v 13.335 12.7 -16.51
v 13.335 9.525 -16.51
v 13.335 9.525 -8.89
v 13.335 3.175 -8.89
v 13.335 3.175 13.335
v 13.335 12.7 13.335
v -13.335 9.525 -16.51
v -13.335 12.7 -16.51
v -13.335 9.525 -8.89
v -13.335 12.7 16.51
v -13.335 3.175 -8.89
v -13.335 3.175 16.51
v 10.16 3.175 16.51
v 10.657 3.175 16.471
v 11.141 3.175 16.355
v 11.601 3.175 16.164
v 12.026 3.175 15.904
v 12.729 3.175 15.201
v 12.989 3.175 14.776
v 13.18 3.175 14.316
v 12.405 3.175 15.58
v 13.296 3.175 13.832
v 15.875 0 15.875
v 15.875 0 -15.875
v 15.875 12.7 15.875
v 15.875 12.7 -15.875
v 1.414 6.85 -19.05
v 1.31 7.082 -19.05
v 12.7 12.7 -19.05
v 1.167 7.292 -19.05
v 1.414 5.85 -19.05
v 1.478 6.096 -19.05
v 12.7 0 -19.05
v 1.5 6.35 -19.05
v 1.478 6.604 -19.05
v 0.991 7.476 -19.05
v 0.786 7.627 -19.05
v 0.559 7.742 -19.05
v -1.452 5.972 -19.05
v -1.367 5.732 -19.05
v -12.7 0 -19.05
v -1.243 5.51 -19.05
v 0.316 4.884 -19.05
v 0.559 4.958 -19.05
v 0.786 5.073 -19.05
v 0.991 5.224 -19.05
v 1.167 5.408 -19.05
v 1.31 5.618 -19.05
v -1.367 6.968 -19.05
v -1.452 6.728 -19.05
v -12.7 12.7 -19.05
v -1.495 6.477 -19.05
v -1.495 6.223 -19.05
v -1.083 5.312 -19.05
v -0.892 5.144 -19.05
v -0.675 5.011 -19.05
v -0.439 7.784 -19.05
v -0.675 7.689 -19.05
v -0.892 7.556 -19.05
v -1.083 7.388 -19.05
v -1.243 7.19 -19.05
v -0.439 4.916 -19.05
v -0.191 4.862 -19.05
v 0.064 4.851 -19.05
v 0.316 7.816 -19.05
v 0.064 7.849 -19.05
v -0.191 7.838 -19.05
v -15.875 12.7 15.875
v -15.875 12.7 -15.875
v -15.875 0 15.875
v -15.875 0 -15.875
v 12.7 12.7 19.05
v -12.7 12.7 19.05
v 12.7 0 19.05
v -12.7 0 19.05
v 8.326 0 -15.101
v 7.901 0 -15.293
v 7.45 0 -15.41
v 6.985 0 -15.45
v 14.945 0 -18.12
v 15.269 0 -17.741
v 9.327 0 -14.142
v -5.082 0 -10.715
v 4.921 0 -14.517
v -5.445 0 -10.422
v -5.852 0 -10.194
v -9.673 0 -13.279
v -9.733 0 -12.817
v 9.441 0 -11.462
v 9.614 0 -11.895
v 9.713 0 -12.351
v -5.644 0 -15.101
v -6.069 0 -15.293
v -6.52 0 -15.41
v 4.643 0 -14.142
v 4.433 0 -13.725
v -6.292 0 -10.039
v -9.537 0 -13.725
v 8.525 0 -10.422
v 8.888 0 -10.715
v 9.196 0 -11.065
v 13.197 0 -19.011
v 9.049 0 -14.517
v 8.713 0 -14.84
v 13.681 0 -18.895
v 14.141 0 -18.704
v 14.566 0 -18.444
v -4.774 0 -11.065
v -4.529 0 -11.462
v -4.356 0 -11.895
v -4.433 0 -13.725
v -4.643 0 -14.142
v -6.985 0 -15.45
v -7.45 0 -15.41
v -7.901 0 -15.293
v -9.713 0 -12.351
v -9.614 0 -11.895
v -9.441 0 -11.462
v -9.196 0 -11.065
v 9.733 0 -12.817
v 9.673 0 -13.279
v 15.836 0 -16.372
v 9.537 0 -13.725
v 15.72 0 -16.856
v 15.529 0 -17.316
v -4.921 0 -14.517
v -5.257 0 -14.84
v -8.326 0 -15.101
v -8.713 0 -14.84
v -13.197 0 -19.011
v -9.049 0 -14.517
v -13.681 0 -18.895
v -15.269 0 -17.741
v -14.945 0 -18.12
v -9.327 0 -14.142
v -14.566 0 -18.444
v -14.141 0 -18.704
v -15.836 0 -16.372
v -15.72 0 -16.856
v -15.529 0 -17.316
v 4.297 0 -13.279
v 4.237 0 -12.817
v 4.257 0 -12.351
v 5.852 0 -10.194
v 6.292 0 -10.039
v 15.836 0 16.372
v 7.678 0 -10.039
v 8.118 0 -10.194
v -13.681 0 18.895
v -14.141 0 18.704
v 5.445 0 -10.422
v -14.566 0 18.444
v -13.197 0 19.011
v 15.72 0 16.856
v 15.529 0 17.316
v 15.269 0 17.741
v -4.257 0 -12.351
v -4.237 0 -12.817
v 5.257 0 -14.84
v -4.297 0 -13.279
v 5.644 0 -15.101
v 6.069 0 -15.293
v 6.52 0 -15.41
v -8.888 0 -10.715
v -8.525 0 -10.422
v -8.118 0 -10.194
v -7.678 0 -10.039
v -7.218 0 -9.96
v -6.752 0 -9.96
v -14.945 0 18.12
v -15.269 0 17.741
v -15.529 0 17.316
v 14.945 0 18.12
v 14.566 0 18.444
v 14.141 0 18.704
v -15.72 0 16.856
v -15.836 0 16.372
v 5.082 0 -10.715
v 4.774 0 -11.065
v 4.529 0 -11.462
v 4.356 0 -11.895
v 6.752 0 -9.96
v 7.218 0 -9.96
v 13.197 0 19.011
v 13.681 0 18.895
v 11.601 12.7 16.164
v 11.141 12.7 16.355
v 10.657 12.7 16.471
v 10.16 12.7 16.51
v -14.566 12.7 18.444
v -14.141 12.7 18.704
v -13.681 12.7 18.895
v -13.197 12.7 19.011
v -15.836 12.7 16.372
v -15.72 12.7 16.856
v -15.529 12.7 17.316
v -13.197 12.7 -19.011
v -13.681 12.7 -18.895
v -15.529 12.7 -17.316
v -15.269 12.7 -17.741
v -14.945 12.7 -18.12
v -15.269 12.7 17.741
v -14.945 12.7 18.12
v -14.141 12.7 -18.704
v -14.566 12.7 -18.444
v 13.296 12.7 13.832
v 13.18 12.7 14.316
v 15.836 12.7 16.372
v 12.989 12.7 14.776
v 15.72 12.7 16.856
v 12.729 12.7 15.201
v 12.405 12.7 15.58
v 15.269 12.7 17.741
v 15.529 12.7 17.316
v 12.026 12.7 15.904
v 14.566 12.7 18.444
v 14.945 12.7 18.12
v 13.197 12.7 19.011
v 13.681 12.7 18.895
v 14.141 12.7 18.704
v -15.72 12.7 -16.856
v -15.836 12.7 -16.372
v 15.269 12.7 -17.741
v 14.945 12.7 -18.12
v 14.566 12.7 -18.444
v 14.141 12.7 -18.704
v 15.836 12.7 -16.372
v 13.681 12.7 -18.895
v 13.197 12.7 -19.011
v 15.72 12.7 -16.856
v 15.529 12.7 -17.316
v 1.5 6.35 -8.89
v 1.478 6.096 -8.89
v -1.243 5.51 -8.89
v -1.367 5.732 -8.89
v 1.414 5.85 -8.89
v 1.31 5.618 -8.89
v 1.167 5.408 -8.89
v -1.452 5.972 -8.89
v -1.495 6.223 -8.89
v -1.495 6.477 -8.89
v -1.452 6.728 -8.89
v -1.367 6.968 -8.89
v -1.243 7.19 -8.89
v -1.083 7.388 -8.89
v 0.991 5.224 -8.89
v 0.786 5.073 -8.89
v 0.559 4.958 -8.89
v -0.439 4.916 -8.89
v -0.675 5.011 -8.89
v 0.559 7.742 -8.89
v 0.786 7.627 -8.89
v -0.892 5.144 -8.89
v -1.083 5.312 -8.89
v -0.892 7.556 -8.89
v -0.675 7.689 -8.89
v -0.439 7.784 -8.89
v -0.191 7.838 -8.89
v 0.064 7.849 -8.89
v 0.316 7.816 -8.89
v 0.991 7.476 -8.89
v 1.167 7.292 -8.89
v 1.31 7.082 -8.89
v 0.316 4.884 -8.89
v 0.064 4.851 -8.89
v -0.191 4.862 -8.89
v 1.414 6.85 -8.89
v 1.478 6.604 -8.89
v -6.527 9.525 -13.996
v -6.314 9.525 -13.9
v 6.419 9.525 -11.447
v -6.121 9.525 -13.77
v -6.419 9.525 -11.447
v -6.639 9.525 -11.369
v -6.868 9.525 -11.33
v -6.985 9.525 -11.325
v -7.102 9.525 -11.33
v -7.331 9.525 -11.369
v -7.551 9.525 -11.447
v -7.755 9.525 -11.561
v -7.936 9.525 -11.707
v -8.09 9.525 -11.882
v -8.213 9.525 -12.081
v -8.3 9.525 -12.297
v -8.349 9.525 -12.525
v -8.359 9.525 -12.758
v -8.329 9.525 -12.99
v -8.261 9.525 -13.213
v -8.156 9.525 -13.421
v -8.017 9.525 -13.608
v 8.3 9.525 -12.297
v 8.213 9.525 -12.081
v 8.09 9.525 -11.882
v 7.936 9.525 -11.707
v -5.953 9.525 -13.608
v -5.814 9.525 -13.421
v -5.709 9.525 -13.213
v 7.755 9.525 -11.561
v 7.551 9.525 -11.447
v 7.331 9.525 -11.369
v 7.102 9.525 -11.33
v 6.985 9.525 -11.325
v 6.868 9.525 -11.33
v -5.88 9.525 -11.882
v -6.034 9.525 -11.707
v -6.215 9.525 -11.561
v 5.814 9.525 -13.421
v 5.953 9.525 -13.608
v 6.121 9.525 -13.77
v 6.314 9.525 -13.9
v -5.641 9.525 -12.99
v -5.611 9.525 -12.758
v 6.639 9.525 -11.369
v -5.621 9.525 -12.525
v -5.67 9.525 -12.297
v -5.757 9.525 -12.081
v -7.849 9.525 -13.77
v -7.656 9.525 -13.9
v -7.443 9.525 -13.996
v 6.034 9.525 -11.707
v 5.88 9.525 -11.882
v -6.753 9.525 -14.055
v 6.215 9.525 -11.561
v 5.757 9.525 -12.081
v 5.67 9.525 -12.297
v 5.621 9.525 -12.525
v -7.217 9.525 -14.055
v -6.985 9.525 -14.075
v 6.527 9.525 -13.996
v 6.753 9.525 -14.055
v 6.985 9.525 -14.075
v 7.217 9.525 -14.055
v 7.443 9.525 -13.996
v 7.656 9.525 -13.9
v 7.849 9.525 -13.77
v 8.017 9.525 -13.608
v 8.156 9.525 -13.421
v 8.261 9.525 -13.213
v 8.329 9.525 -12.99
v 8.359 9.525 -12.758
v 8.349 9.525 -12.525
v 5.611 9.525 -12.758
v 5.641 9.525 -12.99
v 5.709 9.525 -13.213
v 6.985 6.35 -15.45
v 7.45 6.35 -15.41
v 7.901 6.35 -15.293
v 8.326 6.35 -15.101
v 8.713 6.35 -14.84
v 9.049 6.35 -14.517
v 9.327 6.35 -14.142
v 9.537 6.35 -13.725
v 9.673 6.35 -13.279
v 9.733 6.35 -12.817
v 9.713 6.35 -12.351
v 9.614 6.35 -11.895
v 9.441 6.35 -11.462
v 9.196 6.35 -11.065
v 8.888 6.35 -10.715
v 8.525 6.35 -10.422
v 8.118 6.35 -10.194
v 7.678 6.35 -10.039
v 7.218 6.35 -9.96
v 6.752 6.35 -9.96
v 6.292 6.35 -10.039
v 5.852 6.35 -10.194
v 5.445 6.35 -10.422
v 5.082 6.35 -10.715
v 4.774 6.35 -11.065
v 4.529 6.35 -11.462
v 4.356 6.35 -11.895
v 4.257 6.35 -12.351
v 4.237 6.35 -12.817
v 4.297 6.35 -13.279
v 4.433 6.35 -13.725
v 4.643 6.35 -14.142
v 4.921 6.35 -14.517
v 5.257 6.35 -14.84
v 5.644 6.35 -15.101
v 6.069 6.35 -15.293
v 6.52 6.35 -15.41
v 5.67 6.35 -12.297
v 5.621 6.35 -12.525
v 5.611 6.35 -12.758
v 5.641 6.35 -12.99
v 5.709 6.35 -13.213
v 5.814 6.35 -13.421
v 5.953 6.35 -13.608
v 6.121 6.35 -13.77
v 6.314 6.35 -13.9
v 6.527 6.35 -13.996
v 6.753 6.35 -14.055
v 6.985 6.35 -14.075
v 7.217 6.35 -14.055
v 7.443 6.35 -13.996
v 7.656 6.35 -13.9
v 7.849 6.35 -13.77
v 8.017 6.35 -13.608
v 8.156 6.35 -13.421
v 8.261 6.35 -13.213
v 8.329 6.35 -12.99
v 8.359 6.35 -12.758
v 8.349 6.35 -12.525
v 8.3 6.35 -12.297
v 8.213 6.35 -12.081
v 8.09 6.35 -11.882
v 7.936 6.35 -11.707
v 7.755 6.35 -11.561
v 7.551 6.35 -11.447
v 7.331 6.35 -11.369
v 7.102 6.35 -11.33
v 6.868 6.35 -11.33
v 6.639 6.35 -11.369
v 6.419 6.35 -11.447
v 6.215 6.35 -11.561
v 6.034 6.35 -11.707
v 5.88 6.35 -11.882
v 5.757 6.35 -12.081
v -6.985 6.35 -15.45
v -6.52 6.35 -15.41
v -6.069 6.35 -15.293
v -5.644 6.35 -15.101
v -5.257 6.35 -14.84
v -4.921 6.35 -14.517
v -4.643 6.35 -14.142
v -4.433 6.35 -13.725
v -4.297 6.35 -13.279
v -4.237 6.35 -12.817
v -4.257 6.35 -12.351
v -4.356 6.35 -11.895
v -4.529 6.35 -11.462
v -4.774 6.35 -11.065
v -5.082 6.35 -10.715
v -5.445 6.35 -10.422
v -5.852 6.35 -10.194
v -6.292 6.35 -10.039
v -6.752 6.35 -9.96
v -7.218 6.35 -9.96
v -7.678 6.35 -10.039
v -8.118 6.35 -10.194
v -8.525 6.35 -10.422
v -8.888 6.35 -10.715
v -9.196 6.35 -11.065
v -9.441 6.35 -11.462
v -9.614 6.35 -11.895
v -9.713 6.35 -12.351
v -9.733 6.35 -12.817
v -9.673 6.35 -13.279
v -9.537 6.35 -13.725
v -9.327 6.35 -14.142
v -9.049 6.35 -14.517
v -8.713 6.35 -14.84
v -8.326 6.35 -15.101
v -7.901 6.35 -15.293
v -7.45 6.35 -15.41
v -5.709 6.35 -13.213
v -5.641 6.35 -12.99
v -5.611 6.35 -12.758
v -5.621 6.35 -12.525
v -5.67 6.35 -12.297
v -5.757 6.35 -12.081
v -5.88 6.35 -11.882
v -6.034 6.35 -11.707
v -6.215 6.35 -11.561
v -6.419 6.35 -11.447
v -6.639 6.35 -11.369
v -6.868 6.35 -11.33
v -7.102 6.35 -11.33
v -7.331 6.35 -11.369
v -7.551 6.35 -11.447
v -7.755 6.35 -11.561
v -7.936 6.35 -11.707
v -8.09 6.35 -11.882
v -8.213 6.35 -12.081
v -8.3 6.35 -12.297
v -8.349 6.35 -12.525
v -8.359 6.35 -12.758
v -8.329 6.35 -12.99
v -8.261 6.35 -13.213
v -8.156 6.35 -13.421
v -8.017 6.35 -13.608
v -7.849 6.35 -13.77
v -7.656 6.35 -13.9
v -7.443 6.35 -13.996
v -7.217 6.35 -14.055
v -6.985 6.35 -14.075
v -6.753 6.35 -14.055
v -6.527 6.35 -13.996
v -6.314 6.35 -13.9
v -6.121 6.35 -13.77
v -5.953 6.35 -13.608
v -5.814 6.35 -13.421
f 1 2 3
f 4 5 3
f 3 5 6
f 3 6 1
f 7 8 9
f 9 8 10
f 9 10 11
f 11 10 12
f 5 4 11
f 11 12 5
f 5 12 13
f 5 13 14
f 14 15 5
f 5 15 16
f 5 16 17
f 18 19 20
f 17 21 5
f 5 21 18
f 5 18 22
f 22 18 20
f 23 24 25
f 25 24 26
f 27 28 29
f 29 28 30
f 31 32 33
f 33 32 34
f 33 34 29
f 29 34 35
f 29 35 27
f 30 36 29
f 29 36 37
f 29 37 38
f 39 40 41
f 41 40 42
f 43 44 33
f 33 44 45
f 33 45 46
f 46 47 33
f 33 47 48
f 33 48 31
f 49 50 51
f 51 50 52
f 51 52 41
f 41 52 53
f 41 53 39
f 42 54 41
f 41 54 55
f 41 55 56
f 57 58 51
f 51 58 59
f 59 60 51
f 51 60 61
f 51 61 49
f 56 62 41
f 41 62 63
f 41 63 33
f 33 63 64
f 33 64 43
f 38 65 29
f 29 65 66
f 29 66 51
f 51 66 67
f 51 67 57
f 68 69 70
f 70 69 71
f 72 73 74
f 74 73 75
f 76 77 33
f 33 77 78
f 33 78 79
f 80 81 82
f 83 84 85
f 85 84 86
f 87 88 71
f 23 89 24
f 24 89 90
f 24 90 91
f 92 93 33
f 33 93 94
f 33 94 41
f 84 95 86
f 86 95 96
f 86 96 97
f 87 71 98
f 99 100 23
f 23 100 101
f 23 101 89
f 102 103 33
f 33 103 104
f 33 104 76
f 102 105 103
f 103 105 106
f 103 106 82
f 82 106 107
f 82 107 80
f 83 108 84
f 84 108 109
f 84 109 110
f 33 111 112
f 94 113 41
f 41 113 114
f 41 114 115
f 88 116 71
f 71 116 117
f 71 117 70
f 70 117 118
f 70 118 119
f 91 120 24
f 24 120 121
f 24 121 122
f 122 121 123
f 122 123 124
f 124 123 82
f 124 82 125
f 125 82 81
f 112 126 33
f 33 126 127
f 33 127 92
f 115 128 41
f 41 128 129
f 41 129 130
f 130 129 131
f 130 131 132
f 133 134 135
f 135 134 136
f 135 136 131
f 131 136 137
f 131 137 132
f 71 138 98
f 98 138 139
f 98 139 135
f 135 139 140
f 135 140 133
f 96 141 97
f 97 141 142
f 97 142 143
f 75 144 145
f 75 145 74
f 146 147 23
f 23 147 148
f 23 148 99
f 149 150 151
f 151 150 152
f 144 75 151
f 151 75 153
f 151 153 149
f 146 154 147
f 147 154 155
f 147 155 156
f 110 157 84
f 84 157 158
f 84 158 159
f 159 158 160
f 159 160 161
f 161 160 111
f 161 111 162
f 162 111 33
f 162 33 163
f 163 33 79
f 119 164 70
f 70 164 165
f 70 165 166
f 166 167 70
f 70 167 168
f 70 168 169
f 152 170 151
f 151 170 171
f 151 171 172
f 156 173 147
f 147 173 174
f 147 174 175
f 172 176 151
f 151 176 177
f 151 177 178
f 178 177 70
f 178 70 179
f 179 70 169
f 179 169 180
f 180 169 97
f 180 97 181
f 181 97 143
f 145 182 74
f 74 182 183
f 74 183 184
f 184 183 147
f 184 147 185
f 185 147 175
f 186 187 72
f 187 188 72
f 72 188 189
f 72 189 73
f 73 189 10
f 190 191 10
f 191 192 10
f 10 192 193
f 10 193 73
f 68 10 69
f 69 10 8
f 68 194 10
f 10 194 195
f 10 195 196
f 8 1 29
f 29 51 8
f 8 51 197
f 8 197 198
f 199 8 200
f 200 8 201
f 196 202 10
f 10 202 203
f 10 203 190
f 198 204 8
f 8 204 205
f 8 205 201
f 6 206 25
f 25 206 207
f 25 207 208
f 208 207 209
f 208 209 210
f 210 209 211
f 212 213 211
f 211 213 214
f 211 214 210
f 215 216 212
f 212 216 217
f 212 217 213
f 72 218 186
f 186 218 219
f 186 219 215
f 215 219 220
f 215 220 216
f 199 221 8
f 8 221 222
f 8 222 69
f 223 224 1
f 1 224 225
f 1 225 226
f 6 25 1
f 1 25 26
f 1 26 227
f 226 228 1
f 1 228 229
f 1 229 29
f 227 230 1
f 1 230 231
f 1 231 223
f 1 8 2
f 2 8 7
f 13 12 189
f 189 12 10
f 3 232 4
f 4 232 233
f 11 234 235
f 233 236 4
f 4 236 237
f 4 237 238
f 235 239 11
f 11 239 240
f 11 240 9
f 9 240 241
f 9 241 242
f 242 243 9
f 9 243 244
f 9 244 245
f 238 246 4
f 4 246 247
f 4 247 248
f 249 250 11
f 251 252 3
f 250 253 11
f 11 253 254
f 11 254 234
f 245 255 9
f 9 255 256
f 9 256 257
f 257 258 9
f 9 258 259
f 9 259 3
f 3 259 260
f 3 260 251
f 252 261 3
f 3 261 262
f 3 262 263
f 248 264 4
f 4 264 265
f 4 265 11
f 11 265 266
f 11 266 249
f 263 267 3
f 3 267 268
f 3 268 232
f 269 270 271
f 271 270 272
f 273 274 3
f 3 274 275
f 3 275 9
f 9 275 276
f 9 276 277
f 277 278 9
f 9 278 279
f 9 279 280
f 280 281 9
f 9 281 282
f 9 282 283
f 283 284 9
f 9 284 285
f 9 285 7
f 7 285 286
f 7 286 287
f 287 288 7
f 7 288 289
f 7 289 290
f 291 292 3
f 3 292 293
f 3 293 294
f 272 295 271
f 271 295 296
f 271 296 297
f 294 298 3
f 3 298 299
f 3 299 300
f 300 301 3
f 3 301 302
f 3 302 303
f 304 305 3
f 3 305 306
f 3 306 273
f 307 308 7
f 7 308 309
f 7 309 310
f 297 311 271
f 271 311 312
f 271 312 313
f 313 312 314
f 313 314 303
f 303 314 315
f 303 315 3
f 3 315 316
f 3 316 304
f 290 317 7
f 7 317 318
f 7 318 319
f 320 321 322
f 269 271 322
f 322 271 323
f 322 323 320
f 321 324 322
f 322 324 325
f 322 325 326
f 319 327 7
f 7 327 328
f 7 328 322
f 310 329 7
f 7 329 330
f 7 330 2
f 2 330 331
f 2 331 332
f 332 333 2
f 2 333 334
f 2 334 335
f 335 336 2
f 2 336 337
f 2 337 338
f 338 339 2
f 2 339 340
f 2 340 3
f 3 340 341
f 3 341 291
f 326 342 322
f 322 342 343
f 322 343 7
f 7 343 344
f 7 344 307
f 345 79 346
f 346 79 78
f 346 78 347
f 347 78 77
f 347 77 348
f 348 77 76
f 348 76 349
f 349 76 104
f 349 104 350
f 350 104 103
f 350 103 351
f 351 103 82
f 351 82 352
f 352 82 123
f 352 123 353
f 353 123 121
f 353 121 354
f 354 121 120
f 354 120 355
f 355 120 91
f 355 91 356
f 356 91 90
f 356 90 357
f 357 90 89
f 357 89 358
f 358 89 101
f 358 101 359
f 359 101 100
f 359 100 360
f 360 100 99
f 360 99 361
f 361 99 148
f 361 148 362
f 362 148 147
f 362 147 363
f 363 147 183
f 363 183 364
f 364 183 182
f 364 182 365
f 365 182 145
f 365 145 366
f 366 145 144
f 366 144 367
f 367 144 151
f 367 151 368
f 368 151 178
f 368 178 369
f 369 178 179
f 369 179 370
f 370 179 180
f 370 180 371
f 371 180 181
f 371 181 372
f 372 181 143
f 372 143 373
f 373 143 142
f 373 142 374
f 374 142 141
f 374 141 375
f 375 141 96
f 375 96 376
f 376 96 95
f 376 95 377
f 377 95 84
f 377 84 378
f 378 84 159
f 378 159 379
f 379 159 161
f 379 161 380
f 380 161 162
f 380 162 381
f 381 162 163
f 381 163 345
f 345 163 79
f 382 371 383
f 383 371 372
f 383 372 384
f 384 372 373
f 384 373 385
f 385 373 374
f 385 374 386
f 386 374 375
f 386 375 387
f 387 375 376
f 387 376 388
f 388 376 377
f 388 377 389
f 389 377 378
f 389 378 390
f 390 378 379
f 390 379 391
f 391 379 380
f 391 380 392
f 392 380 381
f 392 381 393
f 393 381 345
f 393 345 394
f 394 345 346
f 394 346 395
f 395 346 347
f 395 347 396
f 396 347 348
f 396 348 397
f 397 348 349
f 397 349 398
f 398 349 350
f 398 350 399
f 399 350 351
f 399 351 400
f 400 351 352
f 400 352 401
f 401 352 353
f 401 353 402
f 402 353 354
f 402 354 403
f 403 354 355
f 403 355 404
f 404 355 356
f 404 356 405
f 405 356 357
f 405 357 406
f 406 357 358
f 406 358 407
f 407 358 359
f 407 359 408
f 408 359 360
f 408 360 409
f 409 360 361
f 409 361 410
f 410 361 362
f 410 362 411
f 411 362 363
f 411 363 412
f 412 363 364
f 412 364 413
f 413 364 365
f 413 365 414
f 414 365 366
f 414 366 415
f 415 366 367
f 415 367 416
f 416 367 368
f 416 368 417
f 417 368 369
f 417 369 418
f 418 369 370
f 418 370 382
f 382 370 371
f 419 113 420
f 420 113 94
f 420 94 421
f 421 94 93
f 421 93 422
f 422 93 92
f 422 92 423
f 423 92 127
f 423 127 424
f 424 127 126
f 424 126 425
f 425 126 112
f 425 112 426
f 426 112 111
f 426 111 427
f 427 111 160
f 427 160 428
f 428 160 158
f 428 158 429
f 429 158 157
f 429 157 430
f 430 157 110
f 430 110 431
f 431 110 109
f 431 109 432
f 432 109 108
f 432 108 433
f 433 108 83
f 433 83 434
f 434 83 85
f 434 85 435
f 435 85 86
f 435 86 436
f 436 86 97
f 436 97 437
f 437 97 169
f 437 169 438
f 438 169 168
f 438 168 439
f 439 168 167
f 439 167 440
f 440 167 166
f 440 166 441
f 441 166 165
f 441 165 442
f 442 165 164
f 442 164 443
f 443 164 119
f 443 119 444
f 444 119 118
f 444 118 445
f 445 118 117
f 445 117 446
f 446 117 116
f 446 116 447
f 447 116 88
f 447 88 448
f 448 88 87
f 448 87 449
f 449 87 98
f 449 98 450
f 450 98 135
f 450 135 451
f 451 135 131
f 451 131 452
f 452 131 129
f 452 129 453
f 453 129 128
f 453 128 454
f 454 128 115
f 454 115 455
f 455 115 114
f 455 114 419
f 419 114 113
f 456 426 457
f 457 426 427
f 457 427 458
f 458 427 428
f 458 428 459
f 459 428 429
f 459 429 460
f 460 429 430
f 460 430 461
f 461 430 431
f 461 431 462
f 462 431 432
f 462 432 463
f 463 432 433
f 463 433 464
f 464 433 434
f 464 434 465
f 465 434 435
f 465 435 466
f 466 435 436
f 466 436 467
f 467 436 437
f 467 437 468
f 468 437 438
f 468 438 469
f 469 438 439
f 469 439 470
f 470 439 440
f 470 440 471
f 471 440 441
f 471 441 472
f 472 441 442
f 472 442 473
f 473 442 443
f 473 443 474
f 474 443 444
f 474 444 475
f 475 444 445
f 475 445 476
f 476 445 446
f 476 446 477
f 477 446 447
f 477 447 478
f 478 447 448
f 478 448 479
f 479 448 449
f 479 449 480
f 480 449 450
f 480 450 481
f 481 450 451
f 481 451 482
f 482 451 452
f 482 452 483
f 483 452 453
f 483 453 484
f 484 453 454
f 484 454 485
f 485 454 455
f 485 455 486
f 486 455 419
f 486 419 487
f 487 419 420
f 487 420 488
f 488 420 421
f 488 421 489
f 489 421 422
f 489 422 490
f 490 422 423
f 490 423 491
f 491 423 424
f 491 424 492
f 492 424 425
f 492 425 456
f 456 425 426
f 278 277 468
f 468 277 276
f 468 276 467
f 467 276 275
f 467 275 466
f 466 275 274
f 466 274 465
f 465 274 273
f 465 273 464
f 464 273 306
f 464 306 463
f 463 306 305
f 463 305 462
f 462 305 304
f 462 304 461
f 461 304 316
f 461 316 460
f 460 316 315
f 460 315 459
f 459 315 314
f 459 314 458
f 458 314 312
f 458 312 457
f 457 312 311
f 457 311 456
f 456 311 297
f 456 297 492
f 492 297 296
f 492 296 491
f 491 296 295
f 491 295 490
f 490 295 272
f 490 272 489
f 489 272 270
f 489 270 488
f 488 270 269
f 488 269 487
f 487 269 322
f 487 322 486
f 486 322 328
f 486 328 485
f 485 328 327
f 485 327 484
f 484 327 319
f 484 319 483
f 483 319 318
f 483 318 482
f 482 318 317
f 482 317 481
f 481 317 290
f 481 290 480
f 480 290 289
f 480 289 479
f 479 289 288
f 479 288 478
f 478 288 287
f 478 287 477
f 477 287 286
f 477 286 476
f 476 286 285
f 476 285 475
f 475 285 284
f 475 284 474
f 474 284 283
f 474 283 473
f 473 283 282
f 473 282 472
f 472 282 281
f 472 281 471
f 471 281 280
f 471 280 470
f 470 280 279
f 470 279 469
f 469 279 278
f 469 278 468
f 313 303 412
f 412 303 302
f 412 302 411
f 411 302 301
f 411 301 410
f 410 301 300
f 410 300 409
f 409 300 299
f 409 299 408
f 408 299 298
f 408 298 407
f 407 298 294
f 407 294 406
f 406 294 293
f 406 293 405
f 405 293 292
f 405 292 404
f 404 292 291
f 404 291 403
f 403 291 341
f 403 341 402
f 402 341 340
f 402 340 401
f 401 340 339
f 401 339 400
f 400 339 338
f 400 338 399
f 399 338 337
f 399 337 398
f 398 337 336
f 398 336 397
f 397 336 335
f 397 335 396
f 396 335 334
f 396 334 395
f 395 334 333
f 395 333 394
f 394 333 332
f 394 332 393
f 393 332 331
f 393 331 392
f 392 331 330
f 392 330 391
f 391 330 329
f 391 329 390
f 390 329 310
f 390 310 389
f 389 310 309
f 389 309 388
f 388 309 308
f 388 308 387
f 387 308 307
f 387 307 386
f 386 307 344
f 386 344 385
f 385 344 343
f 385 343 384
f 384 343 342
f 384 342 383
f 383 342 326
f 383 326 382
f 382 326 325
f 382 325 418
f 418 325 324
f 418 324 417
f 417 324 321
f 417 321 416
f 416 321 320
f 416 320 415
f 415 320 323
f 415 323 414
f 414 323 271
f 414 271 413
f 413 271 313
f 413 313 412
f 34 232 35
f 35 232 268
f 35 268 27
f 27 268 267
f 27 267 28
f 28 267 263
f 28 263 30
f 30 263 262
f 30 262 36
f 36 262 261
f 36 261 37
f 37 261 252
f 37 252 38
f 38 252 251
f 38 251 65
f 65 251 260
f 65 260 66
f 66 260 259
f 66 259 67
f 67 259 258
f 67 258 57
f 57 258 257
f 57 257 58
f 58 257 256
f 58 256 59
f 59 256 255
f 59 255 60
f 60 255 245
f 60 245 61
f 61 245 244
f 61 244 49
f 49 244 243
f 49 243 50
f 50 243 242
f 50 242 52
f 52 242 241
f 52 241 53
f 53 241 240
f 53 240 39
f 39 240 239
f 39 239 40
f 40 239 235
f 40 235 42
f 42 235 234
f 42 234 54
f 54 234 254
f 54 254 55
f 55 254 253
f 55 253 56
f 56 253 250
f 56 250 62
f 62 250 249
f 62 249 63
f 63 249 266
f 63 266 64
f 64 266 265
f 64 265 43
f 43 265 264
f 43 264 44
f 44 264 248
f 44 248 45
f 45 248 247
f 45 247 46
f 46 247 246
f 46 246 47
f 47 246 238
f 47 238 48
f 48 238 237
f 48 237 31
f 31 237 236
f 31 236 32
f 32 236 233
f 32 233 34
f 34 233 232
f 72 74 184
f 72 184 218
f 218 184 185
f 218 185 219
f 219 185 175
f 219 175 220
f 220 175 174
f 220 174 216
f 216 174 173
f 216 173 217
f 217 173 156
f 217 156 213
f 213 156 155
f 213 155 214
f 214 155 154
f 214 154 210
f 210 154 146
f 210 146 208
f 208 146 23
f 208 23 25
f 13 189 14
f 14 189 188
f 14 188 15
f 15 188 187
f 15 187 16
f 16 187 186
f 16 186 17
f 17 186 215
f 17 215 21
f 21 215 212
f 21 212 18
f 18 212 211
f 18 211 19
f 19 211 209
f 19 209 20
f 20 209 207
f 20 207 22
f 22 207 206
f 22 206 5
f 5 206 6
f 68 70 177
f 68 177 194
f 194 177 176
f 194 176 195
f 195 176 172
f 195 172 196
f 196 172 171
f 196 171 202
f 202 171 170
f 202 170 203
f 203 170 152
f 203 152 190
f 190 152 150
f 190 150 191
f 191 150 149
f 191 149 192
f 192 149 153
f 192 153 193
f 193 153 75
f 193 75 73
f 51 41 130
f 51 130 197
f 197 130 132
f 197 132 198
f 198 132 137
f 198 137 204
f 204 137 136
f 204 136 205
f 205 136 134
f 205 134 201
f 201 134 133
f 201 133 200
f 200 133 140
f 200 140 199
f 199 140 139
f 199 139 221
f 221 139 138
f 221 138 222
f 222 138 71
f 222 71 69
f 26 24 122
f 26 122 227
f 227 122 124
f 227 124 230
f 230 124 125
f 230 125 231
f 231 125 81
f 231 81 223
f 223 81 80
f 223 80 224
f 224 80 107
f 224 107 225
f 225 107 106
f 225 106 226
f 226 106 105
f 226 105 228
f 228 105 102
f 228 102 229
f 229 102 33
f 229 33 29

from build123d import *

# Parameters (mm, degrees)
SKETCH1_W           = 31.75
SKETCH1_H           = 38.1
BOSS_EXTRUDE1_DEPTH = 3.175
SKETCH2_W           = 31.75
SKETCH2_H           = 38.1
SKETCH2_W_2         = 26.67
SKETCH2_H_2         = 33.02
BOSS_EXTRUDE2_DEPTH = 9.525
SKETCH3_W           = 26.67
SKETCH3_H           = 7.62
BOSS_EXTRUDE3_DEPTH = 6.35
SKETCH4_R           = 2.749999961
CUT_EXTRUDE1_DEPTH  = 6.35
SKETCH5_R           = 1.375
CUT_EXTRUDE2_DEPTH  = 26.597668351
SKETCH6_R           = 1.5
CUT_EXTRUDE3_DEPTH  = 35.553570365
FILLET1_R           = 3.175


with BuildPart() as part:
    # Sketch1 → Boss-Extrude1 (new body)
    with BuildSketch(Plane(origin=(0, 0, 0), x_dir=(1, 0, 0), z_dir=(0, 1, 0))):
        Rectangle(SKETCH1_W, SKETCH1_H)
    extrude(amount=BOSS_EXTRUDE1_DEPTH)

    # Sketch2 → Boss-Extrude2 (add)
    with BuildSketch(Plane(origin=(0, 3.175, 0), x_dir=(1, 0, 0), z_dir=(0, 1, 0))):
        Rectangle(SKETCH2_W, SKETCH2_H)
        Rectangle(SKETCH2_W_2, SKETCH2_H_2, mode=Mode.SUBTRACT)
    extrude(amount=BOSS_EXTRUDE2_DEPTH)

    # Sketch3 → Boss-Extrude3 (add)
    with BuildSketch(Plane(origin=(0, 3.175, 0), x_dir=(1, 0, 0), z_dir=(0, 1, 0))):
        with Locations((0, 12.7)):
            Rectangle(SKETCH3_W, SKETCH3_H)
    extrude(amount=BOSS_EXTRUDE3_DEPTH)

    # Sketch4 → Cut-Extrude1 (cut)
    with BuildSketch(Plane.XZ):
        with Locations(Location((-6.985, -12.7, 0), (0, 0, 270))):
            Circle(SKETCH4_R)
        with Locations(Location((6.985, -12.7, 0), (0, 0, 270))):
            Circle(SKETCH4_R)
    extrude(amount=-CUT_EXTRUDE1_DEPTH, mode=Mode.SUBTRACT)

    # Sketch5 → Cut-Extrude2 (cut, through all)
    with BuildSketch(Plane.XZ.offset(-6.35)):
        with Locations(Location((6.985, -12.7, 0), (0, 0, 270))):
            Circle(SKETCH5_R)
        with Locations(Location((-6.985, -12.7, 0), (0, 0, 270))):
            Circle(SKETCH5_R)
    extrude(amount=-CUT_EXTRUDE2_DEPTH, mode=Mode.SUBTRACT)

    # Sketch6 → Cut-Extrude3 (cut, through all)
    with BuildSketch(Plane.XY.offset(-8.89)):
        with Locations((0, 6.35)):
            Circle(SKETCH6_R)
    extrude(amount=-CUT_EXTRUDE3_DEPTH, mode=Mode.SUBTRACT)

    # Fillet1
    fillet1_edges = [part.edges().sort_by_distance(p)[0] for p in [
        (13.335, 7.9375, 16.51),
        (15.875, 6.35, 19.05),
        (-15.875, 6.35, 19.05),
        (-15.875, 6.35, -19.05),
        (15.875, 6.35, -19.05),
    ]]
    fillet(fillet1_edges, radius=FILLET1_R)


solid = part.part
